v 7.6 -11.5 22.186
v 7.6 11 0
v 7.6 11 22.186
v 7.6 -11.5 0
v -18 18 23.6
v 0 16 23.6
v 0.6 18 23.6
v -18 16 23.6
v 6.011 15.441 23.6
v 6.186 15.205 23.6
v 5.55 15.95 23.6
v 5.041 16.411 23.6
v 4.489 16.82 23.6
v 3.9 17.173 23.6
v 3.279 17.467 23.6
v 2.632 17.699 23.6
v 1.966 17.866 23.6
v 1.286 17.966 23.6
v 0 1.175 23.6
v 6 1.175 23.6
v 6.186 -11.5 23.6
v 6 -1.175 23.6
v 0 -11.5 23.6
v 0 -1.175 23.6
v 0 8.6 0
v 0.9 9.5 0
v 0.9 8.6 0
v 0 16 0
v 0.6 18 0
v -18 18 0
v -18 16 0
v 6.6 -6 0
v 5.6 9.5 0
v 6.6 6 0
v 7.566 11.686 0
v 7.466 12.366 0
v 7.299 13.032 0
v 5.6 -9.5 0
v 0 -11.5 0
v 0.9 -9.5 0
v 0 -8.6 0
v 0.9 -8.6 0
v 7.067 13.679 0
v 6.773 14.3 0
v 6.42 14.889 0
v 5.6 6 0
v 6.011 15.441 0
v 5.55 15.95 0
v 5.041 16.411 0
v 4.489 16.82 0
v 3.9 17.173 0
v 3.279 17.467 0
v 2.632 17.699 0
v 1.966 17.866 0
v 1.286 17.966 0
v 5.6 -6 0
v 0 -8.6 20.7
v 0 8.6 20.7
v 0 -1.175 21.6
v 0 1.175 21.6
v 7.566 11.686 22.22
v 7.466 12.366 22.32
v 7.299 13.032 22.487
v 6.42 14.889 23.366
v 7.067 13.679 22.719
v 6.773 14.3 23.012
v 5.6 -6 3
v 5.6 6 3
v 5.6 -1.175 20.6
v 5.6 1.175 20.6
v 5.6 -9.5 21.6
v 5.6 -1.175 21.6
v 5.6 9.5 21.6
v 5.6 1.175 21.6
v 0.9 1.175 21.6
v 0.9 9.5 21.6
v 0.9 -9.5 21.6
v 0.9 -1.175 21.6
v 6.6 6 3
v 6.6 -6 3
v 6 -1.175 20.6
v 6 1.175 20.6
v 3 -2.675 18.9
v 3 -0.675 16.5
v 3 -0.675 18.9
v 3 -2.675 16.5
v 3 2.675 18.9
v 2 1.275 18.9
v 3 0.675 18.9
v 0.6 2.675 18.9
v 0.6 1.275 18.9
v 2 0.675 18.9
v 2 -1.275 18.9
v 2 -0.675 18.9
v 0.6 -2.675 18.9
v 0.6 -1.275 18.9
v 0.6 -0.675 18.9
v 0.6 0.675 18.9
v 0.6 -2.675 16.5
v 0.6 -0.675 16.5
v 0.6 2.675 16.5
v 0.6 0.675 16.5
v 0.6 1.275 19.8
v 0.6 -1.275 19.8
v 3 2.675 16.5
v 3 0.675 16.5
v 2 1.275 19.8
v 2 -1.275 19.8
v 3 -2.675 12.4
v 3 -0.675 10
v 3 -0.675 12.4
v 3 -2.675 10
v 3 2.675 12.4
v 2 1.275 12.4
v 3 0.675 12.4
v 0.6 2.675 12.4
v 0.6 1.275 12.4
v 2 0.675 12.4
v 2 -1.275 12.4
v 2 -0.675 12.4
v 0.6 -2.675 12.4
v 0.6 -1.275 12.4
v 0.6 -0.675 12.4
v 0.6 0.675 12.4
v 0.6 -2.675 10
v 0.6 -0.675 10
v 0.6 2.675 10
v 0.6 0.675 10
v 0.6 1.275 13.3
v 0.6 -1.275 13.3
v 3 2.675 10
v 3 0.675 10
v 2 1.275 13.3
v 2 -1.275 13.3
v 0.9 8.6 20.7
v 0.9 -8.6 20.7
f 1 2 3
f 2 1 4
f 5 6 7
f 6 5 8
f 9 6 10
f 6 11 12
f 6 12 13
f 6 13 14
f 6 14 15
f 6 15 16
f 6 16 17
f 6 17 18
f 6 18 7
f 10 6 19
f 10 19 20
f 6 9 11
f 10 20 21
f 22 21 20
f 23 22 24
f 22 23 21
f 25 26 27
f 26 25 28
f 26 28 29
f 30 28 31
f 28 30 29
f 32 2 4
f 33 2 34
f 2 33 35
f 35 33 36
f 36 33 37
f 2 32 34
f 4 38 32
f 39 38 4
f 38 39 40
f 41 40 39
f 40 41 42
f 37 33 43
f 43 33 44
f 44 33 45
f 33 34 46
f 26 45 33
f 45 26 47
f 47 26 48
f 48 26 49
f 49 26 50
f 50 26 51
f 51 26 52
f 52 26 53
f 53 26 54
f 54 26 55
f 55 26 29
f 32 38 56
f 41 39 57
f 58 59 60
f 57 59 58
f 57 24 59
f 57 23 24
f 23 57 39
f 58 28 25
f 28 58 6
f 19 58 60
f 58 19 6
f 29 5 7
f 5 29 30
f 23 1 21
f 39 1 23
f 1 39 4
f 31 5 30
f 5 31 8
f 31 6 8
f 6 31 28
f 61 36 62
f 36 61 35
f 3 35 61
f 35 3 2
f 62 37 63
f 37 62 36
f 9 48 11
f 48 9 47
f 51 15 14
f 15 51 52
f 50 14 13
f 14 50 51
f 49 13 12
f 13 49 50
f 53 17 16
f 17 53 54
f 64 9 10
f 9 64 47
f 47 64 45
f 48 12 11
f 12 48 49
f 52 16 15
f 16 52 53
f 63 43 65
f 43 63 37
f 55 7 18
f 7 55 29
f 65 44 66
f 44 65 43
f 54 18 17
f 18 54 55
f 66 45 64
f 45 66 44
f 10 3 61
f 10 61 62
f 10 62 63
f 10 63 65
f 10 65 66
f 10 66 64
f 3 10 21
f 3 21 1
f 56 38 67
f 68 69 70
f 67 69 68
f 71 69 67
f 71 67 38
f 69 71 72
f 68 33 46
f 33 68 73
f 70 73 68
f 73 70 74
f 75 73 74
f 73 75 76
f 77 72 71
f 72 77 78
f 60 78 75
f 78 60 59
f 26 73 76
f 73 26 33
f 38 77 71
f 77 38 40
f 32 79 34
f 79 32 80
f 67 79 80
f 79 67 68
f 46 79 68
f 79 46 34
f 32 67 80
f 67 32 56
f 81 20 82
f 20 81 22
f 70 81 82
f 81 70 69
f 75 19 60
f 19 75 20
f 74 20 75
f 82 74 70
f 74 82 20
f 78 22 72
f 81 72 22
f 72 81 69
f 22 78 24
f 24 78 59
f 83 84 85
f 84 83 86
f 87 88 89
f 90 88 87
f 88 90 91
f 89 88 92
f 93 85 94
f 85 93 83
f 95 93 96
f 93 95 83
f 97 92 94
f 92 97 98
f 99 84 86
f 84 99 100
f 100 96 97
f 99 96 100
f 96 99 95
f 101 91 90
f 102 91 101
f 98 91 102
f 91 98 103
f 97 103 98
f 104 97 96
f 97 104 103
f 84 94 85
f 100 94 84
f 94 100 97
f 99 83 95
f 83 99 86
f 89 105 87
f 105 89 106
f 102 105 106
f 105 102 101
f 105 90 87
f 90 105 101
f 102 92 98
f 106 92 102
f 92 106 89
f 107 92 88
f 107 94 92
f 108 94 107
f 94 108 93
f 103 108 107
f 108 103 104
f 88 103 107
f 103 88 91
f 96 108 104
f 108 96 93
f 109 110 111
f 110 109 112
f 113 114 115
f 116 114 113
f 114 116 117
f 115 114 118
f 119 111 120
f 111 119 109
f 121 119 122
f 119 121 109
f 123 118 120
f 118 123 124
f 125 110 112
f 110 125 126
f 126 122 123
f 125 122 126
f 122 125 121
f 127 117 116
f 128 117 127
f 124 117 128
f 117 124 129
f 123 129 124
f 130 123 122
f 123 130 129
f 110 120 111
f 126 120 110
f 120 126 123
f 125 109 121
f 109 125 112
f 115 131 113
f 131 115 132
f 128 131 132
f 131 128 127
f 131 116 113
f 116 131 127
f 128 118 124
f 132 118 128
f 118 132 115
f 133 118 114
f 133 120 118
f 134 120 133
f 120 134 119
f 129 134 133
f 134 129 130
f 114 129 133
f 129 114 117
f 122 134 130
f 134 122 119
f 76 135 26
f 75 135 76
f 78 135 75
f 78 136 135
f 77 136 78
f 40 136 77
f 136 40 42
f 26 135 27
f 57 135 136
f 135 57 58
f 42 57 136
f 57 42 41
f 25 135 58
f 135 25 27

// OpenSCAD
// =====================================================================
// XIAO C3 presence case — L-mount rev 4
//   L that grips the brick's right corner. Leg 1 caps the board on the
//   room face; leg 2 wraps onto the right face. The outer corner between
//   them is a GENEROUS ROUND (CORNER_R) and the outer skin is CONTINUOUS
//   (no recess) — the 20x40 FPC antenna adheres across leg1 → curved
//   corner → leg2, conforming to the curve (no crease, no bump). Coax from
//   the center-rear u.FL routes out; wire-catch combs give strain relief.
//   Board captured (open back for the adapter, USB-C throat, retention lips).
// Local axes: +X = room, +Y = right, +Z = up.
// =====================================================================

/* ---- board + fit ---- */
PCB_W = 17.8; PCB_L = 21.0;
STK   = 5.0; CLR = 0.6; WALL = 2.0;
BRICK_HALF = 16.0;              // brick 32 wide -> right face at Y=16

/* ---- antenna corner ---- */
CORNER_R = 7.0;                 // rounded antenna corner (FPC conforms over this)
LEG2     = 18.0;                // right-face leg length (leg1 + arc + LEG2 >= 40mm skin)

/* ---- details ---- */
LIP    = 0.9; COAX_D = 1.35;
CATCH_Z = [16.5, 10.0];

$fn = 56;
cav_y0 = -(PCB_W/2+CLR); cav_y1 = (PCB_W/2+CLR);
cav_z1 = PCB_L + CLR;
room_x = STK + CLR + WALL;
right_y = BRICK_HALF + WALL;
case_z = cav_z1 + WALL;

module case_solid() {
  difference() {
    union() {
      // leg 1 — board cap on the room face, full to the right corner
      translate([0, cav_y0-WALL, 0]) cube([room_x, right_y-(cav_y0-WALL), case_z]);
      // leg 2 — wrap onto the right face
      translate([-LEG2, right_y-WALL, 0]) cube([room_x+LEG2, WALL, case_z]);
    }
    // round the outer antenna corner: remove material outside the fillet
    translate([room_x-CORNER_R, right_y-CORNER_R, -1])
      difference() {
        cube([CORNER_R+2, CORNER_R+2, case_z+2]);
        cylinder(h=case_z+2, r=CORNER_R, $fn=64);
      }
    // soften the top outer edge of leg1 a touch (chamfer)
    translate([room_x, 0, case_z]) rotate([0,45,0]) cube([2,200,2], center=true);
  }
}

module body() {
  difference() {
    case_solid();
    // board cavity — open back (-X) + bottom (-Z)
    translate([-1, cav_y0, -1]) cube([STK+CLR+1, cav_y1-cav_y0, cav_z1+1]);
    // USB-C throat (adapter)
    translate([-1, -6, -1]) cube([STK+CLR+2, 12, 4]);
    // coax exit — notch in the top wall, centre (coax up to the antenna corner)
    translate([-1, -COAX_D/2-0.5, cav_z1-1]) cube([STK+2, COAX_D+1.0, WALL+2]);
  }
  // board retention lips at the back opening
  translate([0, cav_y0, cav_z1-LIP]) cube([LIP, cav_y1-cav_y0, LIP]);
  translate([0, cav_y0, 0])          cube([LIP, LIP, cav_z1]);
  translate([0, cav_y1-LIP, 0])      cube([LIP, LIP, cav_z1]);
  // wire-catch combs (u.FL strain relief) at centre-rear
  for (zc = CATCH_Z) wire_comb(zc);
}

module wire_comb(zc) {
  pw = 2.0; ph = 2.4; bx = 0.6;
  translate([bx, -COAX_D/2-pw, zc]) cube([2.4, pw, ph]);
  translate([bx,  COAX_D/2,     zc]) cube([2.4, pw, ph]);
  translate([bx, -COAX_D/2-0.6, zc+ph]) cube([1.4, COAX_D+1.2, 0.9]);
}

module board_ghost(){ %translate([STK-1.3, cav_y0+CLR, CLR]) cube([1.3, PCB_W, PCB_L]); }

// antenna footprint ghost (conforms over the corner) — visual only
module antenna_ghost(){
  %color([0.85,0.2,0.2]) translate([room_x+0.1, -2, case_z/2-10])
    cube([0.4, right_y-CORNER_R+2, 20]);
}

body();
board_ghost();
